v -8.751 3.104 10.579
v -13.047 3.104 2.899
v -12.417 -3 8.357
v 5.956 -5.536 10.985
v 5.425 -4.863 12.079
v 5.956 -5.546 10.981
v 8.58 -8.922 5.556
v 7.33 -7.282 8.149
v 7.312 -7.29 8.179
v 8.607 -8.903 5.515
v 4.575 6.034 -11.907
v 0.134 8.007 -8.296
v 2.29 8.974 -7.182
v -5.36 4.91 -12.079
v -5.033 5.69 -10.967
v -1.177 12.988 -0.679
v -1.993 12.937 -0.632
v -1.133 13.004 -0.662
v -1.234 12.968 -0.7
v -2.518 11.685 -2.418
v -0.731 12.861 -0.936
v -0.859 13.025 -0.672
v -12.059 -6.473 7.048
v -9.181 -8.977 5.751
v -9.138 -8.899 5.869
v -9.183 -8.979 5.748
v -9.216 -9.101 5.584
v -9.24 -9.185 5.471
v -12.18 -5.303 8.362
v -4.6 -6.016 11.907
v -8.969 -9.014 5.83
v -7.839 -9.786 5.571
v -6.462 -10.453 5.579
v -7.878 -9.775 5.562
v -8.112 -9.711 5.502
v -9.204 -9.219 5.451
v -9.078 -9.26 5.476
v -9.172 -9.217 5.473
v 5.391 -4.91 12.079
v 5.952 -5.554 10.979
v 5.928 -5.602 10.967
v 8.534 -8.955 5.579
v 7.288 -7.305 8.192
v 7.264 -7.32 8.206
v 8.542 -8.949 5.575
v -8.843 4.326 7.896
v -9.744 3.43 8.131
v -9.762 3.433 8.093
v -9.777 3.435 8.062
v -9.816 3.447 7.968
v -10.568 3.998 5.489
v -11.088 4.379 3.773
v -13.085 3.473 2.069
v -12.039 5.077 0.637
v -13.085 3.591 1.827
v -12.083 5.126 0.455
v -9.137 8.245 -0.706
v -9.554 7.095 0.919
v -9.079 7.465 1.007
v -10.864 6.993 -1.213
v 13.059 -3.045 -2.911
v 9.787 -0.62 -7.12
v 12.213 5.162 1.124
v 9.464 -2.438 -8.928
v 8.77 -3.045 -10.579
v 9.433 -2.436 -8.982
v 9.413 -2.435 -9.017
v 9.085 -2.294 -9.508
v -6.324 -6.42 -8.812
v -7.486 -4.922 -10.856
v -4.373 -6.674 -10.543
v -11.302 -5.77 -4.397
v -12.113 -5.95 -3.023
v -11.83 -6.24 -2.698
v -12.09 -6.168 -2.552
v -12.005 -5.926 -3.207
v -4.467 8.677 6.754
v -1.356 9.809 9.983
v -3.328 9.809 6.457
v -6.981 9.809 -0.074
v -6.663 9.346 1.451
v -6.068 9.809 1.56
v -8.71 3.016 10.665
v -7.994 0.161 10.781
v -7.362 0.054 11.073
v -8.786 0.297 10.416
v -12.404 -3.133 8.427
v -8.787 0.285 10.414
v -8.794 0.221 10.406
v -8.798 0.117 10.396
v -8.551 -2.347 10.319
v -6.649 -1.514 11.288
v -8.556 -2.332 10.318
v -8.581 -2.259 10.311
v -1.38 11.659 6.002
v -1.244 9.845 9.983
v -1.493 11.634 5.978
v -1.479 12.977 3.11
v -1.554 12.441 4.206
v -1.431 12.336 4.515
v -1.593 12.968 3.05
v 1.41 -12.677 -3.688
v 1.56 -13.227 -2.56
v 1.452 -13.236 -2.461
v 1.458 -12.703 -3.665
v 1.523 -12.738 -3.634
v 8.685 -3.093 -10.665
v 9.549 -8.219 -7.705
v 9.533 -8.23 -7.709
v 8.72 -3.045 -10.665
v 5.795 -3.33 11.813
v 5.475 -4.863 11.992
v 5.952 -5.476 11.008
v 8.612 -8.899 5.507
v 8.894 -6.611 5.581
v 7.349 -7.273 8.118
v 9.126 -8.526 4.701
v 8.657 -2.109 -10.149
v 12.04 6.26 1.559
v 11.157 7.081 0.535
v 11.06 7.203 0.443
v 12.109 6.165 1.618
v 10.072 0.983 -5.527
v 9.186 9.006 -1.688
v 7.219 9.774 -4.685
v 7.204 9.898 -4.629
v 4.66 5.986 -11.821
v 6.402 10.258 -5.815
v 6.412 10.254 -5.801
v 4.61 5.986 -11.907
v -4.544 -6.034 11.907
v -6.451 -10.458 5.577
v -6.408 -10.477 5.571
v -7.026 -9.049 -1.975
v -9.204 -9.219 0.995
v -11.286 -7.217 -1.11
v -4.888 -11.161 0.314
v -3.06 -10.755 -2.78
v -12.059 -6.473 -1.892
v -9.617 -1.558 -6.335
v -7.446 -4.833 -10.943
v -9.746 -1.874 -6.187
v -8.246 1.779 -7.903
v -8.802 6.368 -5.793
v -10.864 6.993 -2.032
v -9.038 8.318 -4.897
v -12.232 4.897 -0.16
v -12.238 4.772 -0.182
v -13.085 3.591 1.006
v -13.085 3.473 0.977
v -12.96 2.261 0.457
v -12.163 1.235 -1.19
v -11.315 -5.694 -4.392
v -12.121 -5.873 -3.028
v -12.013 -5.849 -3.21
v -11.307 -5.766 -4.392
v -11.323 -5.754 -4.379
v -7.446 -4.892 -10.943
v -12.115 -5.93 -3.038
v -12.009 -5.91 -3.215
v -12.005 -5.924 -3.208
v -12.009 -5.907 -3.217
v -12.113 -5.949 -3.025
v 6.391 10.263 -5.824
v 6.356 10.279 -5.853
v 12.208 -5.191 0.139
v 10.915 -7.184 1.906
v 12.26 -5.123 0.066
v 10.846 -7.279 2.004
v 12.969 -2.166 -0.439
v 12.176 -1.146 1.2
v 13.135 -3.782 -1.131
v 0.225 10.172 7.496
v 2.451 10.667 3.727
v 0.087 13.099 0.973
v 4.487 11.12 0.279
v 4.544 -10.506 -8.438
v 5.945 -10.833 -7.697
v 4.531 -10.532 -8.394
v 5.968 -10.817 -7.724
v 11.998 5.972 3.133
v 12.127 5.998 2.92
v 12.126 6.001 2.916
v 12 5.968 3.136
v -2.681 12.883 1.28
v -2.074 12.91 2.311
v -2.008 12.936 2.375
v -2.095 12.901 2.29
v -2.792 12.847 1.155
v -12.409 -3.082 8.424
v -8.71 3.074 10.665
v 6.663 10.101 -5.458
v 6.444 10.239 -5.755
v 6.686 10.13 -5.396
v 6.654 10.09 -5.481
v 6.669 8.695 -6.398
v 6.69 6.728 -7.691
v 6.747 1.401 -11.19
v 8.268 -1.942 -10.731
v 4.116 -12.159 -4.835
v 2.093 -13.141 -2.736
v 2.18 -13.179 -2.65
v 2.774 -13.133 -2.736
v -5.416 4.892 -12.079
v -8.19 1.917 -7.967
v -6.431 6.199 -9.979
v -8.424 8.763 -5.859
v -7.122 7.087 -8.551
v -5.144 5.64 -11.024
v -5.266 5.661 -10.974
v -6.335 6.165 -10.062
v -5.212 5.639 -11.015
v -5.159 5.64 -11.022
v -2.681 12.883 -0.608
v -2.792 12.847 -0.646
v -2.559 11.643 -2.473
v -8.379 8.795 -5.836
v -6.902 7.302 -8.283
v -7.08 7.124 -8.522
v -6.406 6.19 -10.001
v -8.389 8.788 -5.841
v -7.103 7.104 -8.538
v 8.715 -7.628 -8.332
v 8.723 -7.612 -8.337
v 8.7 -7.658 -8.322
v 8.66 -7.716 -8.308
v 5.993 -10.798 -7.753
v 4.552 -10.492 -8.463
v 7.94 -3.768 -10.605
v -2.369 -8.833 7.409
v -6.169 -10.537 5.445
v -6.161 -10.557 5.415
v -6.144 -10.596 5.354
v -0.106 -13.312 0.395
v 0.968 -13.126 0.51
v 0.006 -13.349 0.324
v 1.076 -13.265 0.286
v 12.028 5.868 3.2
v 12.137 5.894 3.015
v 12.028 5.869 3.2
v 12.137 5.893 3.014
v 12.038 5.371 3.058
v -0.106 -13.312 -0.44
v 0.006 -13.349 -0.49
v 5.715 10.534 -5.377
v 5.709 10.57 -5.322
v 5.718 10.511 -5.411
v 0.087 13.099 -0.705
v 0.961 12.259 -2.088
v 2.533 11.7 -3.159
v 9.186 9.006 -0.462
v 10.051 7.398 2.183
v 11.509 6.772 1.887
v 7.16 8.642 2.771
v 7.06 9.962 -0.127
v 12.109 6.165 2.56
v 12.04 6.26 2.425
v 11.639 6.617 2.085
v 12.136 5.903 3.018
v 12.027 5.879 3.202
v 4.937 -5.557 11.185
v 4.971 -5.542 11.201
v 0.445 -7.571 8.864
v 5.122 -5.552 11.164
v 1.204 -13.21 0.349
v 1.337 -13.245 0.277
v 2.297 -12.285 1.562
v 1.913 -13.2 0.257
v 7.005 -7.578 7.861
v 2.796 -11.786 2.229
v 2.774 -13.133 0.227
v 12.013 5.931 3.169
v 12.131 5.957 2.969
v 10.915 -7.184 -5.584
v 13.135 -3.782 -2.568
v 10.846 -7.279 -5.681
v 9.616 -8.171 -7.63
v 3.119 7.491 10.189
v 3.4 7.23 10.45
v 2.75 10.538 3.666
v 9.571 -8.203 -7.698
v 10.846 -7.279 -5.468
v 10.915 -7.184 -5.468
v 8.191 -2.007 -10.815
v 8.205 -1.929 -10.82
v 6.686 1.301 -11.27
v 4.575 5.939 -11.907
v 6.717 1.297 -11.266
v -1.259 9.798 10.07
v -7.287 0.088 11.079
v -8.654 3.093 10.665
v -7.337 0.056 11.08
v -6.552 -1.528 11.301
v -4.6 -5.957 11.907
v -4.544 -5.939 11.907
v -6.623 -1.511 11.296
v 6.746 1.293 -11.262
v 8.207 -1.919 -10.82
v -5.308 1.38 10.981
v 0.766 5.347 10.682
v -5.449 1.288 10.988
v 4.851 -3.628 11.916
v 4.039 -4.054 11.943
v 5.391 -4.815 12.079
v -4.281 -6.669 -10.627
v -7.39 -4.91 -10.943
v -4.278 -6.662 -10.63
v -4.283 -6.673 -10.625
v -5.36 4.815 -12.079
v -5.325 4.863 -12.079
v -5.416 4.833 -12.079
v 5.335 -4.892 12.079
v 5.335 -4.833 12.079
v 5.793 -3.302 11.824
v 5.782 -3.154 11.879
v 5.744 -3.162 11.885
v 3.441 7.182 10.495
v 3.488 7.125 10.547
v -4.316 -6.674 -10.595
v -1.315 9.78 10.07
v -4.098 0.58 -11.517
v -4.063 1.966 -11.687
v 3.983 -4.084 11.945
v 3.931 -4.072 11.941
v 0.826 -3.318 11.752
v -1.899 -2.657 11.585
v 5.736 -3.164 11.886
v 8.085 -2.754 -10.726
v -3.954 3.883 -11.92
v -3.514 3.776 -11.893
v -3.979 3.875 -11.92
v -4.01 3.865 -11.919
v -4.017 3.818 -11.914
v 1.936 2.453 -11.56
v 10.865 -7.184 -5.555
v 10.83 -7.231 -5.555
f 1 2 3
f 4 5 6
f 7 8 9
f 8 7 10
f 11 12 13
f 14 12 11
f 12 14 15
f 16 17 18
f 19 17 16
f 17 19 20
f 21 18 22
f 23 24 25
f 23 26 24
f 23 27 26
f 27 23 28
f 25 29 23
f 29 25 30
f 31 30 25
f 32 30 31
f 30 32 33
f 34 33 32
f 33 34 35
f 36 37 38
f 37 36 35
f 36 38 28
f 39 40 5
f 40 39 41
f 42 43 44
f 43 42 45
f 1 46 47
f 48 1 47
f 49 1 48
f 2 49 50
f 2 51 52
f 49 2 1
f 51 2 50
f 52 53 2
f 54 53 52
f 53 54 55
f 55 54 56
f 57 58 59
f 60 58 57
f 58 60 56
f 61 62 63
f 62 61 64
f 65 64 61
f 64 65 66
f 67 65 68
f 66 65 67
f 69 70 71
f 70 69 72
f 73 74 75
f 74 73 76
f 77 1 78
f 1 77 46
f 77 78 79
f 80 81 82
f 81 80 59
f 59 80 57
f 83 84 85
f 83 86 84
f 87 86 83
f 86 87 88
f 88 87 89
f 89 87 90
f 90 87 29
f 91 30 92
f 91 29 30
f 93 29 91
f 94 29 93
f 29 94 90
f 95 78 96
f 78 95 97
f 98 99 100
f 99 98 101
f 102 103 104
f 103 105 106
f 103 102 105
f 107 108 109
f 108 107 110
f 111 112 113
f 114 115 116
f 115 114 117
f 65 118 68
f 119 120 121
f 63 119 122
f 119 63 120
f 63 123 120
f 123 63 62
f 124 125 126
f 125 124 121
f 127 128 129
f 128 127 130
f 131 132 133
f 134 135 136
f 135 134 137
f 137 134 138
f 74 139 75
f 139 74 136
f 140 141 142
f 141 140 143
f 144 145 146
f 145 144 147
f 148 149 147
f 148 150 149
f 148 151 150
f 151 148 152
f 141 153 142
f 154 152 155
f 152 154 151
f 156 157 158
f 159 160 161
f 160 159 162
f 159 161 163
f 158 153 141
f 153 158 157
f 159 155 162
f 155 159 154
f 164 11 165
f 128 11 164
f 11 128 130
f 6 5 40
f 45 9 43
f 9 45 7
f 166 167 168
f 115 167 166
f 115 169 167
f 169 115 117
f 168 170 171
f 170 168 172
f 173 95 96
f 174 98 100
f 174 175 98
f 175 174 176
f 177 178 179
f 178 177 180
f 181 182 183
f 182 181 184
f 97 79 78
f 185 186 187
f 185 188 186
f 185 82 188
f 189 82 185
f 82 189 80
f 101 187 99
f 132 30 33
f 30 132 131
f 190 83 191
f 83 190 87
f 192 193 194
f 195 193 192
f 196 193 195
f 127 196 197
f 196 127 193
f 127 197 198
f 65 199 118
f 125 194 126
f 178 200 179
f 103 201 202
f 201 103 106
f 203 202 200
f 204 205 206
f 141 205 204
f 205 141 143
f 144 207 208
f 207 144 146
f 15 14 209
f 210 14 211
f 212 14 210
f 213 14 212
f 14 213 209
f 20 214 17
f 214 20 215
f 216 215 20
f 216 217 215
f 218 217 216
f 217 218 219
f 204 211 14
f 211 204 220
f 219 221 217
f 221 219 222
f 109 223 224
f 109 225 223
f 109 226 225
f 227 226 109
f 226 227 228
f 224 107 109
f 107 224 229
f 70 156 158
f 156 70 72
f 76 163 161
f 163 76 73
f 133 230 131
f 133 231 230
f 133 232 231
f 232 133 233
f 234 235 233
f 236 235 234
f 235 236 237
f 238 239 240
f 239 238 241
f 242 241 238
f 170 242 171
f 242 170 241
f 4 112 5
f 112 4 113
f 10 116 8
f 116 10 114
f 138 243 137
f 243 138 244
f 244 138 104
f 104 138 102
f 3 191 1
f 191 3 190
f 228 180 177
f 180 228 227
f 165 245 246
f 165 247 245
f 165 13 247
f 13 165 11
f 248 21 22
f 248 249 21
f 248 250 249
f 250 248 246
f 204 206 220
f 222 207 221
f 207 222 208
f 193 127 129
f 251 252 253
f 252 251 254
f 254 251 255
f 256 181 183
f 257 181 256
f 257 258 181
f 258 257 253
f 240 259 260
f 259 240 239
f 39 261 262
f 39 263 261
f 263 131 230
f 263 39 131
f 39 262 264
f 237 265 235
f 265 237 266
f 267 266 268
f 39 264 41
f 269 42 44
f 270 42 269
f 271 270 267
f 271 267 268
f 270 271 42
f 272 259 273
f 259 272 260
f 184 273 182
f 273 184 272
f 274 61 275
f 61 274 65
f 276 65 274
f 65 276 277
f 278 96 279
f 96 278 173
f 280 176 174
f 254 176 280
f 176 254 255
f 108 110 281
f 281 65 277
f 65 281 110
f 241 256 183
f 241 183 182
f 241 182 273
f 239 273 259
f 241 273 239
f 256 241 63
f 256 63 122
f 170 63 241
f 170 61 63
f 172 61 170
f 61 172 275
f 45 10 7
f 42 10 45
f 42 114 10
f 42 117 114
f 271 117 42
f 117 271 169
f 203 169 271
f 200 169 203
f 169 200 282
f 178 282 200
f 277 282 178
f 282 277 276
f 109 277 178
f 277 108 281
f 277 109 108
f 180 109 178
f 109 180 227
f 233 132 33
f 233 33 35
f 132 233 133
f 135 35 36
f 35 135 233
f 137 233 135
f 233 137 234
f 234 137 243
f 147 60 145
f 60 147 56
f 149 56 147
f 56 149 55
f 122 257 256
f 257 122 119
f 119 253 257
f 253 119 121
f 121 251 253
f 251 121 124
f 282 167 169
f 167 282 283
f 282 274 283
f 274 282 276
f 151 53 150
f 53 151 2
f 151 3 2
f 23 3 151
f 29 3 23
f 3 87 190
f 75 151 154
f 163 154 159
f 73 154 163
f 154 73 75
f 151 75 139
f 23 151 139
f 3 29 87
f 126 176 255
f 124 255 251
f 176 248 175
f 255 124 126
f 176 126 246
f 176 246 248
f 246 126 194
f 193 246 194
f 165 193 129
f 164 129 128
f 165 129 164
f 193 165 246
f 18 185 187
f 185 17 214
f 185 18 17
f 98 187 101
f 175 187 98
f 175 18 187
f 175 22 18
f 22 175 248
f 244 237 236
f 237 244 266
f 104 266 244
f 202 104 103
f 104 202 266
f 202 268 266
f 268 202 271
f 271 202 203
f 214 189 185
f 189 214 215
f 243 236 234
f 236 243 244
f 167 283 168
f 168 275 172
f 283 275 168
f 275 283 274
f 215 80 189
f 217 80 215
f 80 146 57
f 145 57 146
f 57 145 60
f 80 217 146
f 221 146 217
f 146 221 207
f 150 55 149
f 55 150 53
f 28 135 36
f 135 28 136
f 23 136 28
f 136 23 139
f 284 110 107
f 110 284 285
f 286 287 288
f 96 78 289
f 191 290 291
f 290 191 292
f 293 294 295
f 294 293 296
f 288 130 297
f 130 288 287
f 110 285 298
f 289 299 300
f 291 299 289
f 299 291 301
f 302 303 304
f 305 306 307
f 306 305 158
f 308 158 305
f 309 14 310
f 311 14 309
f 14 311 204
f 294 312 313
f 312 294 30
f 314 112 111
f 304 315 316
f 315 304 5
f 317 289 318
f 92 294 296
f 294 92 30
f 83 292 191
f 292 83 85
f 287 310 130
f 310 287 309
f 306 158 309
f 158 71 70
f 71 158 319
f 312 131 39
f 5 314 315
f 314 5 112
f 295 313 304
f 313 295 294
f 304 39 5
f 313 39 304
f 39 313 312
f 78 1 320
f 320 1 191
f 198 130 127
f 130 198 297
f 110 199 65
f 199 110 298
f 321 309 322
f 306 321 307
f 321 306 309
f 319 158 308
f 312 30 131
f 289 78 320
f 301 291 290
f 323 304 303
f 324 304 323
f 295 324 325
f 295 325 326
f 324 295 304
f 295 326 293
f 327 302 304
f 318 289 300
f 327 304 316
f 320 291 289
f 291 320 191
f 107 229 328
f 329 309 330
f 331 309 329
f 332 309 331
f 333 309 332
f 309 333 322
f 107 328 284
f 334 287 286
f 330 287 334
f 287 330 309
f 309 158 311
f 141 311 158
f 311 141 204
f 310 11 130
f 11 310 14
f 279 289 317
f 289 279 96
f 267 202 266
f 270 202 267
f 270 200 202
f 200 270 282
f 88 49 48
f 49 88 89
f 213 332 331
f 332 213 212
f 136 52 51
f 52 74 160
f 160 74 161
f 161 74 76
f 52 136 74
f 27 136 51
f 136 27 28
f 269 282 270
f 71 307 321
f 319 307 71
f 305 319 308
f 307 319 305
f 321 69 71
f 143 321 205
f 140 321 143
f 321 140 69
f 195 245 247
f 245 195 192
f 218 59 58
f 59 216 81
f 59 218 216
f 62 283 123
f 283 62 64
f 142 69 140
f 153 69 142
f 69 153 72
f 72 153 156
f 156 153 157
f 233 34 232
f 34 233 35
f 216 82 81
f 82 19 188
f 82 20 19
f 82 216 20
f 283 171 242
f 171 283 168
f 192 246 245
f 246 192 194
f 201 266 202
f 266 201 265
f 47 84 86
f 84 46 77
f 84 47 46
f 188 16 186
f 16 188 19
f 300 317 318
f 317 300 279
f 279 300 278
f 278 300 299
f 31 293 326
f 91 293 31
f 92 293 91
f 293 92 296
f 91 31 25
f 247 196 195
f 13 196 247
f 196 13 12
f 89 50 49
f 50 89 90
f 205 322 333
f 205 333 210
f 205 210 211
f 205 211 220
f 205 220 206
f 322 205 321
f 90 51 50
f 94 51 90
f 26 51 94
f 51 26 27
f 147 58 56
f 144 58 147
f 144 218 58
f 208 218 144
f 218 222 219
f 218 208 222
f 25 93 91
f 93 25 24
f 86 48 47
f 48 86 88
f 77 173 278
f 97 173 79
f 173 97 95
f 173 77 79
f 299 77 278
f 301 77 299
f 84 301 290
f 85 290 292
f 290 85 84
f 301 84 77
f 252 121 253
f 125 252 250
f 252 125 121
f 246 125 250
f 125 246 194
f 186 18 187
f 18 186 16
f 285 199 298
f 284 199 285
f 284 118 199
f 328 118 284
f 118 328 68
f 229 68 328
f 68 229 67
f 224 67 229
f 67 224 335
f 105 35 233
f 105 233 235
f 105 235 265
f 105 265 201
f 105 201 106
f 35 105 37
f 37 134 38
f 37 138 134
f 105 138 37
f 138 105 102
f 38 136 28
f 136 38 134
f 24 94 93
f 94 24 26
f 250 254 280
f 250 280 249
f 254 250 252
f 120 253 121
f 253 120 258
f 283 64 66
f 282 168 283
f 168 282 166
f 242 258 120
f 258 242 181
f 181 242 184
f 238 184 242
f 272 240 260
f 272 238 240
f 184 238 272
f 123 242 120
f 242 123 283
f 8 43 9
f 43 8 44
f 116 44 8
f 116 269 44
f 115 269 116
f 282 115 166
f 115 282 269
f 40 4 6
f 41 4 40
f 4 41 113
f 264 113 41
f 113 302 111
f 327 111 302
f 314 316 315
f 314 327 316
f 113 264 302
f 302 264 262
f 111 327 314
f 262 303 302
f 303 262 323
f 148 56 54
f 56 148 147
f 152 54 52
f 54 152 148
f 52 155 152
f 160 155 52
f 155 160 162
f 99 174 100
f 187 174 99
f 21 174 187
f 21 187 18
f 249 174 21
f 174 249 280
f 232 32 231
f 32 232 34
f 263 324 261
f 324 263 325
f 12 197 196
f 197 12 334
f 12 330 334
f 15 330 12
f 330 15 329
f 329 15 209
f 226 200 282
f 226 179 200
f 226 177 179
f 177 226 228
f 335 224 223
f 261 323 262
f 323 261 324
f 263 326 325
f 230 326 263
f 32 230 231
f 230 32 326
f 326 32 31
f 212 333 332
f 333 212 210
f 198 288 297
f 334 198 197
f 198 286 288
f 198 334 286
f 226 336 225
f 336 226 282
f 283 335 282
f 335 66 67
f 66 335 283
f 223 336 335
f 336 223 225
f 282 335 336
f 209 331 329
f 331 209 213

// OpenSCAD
// Auto-generated OpenSCAD file

    inner_points = 10*[[1.0814810122881062, -0.7183738797289009, -0.5468250446206121], [-1.3004127886071162, 0.35322504522391734, -0.366937214163524], [1.303539873942325, -0.3781851139200541, 0.366937214163524], [-1.0783539269528974, 0.693413811032764, 0.5468250446206121], [-0.002530637731901048, -1.325352391133482, 0.48977025638353333], [-0.9123331120812015, -0.9160380241093531, 0.5584812934556624], [0.9154601974164103, 0.8910779554132162, -0.5584812934556624], [0.005657723067109926, 1.300392322437345, -0.48977025638353333], [-0.46443592982219944, -0.8810934394293531, -0.9959320939274633], [0.11692171749165503, 0.00953231204908575, 1.3963285572062816], [-0.11379463215644614, -0.03449238074522254, -1.3963285572062816], [0.46756301515740833, 0.8561333707332163, 0.9959320939274633], [0.27428504436946866, -1.303755450078493, -0.47091004958709537], [-1.197806282176454, -0.6414708921498036, -0.3597332562021365], [0.6335838300291047, -0.7533184644089008, 1.0075883427625139], [-0.8385074965168178, -0.09103390648021122, 1.1187651361474726], [0.8416345818520266, 0.06607383778407443, -1.1187651361474726], [-0.6304567446938959, 0.728358395712764, -1.0075883427625139], [1.2009333675116627, 0.6165108234536667, 0.3597332562021365], [-0.27115795903425977, 1.278795381382356, 0.47091004958709537], [0.4759894926735763, -0.839597012174386, -1.3333903450470872], [1.0952793220598376, 0.1091399180587309, 1.2149595344691149]];

    outer_points = 10*[[0.15864682006284056, -1.3894175827447022, -0.08874378178914308], [0.6901488531106656, 1.1567979453568165, -0.38605513301949795], [-0.6901488531106656, -1.1567979453568165, 0.38605513301949795], [-0.15864682006284056, 1.3894175827447022, 0.08874378178914308], [-0.7405582699303093, -0.4862838945260085, -1.0856458512447171], [-0.5375425583957099, 0.4862838945260085, -1.1992086821735548], [0.5375425583957099, -0.4862838945260085, 1.1992086821735548], [0.7405582699303093, 0.4862838945260085, 1.0856458512447171], [0.8669924232504709, -0.30450305856608023, -1.0578882346035428], [-1.3551834986216158, 0.30450305856608023, 0.18515146218704537], [1.3551834986216158, -0.30450305856608023, -0.18515146218704537], [-0.8669924232504709, 0.30450305856608023, 1.0578882346035428], [0.12749208711524018, -0.9750171093968881, -0.9983050113411022], [0.45597840862846595, 0.5986306296526133, -1.1820535316426193], [-1.2458881615833401, -0.5986306296526133, -0.23006422935915521], [-0.9174018400701144, 0.9750171093968881, -0.4138127496606724], [0.9174018400701144, -0.9750171093968881, 0.4138127496606724], [1.2458881615833401, 0.5986306296526133, 0.23006422935915521], [-0.45597840862846595, -0.5986306296526133, 1.1820535316426193], [-0.12749208711524018, 0.9750171093968881, 0.9983050113411022], [1.008624136050673, -1.1625333737755705, -0.5642036833860836], [-1.358543396501757, -0.5137910787071536, 0.7599413507467598]];

    // Convex hull for inner set (I)
    module inner_hull() {
        hull() {
            for (p = inner_points) {
                translate(p) sphere(r=0.1);
            }
        }
    }

    // Convex hull for outer set (O) minus inner hull (O \ I)
    module outer_minus_inner() {
        difference() {
            hull() {
                for (p = outer_points) {
                    translate(p) sphere(r=0.1);
                }
            }
            inner_hull(); // Subtract inner hull
        }
    }

    // Convex hull for outer set (O) minus all translated inner hulls
    module outer_minus_AllTranslationInner() {
        difference() {
            hull() {
                for (p = outer_points) {
                    translate(p) sphere(r=0.1);
                }
            }
            hull() {
                translate([0,0,50]) inner_hull();
                translate([0,0,-50]) inner_hull();
            }; // Subtract translated inner hulls
        }
    }

    // Difference between outer_minus_inner and outer_minus_AllTranslationInner
    module outer_minus_inner_diff() {
        difference() {
            // Outer minus inner
            difference() {
                hull() {
                    for (p = outer_points) {
                        translate(p) sphere(r=0.1);
                    }
                }
                inner_hull();
            }

            // Subtract Outer minus AllTranslationInner
            difference() {
                hull() {
                    for (p = outer_points) {
                        translate(p) sphere(r=0.1);
                    }
                }
                hull() {
                    translate([0,0,50]) inner_hull();
                    translate([0,0,-50]) inner_hull();
                };
            }
        }
    }

    // Rendering all with colors applied
    color([1, 1, 0, 1]) outer_minus_inner_diff(); // Opaque yellow
    
